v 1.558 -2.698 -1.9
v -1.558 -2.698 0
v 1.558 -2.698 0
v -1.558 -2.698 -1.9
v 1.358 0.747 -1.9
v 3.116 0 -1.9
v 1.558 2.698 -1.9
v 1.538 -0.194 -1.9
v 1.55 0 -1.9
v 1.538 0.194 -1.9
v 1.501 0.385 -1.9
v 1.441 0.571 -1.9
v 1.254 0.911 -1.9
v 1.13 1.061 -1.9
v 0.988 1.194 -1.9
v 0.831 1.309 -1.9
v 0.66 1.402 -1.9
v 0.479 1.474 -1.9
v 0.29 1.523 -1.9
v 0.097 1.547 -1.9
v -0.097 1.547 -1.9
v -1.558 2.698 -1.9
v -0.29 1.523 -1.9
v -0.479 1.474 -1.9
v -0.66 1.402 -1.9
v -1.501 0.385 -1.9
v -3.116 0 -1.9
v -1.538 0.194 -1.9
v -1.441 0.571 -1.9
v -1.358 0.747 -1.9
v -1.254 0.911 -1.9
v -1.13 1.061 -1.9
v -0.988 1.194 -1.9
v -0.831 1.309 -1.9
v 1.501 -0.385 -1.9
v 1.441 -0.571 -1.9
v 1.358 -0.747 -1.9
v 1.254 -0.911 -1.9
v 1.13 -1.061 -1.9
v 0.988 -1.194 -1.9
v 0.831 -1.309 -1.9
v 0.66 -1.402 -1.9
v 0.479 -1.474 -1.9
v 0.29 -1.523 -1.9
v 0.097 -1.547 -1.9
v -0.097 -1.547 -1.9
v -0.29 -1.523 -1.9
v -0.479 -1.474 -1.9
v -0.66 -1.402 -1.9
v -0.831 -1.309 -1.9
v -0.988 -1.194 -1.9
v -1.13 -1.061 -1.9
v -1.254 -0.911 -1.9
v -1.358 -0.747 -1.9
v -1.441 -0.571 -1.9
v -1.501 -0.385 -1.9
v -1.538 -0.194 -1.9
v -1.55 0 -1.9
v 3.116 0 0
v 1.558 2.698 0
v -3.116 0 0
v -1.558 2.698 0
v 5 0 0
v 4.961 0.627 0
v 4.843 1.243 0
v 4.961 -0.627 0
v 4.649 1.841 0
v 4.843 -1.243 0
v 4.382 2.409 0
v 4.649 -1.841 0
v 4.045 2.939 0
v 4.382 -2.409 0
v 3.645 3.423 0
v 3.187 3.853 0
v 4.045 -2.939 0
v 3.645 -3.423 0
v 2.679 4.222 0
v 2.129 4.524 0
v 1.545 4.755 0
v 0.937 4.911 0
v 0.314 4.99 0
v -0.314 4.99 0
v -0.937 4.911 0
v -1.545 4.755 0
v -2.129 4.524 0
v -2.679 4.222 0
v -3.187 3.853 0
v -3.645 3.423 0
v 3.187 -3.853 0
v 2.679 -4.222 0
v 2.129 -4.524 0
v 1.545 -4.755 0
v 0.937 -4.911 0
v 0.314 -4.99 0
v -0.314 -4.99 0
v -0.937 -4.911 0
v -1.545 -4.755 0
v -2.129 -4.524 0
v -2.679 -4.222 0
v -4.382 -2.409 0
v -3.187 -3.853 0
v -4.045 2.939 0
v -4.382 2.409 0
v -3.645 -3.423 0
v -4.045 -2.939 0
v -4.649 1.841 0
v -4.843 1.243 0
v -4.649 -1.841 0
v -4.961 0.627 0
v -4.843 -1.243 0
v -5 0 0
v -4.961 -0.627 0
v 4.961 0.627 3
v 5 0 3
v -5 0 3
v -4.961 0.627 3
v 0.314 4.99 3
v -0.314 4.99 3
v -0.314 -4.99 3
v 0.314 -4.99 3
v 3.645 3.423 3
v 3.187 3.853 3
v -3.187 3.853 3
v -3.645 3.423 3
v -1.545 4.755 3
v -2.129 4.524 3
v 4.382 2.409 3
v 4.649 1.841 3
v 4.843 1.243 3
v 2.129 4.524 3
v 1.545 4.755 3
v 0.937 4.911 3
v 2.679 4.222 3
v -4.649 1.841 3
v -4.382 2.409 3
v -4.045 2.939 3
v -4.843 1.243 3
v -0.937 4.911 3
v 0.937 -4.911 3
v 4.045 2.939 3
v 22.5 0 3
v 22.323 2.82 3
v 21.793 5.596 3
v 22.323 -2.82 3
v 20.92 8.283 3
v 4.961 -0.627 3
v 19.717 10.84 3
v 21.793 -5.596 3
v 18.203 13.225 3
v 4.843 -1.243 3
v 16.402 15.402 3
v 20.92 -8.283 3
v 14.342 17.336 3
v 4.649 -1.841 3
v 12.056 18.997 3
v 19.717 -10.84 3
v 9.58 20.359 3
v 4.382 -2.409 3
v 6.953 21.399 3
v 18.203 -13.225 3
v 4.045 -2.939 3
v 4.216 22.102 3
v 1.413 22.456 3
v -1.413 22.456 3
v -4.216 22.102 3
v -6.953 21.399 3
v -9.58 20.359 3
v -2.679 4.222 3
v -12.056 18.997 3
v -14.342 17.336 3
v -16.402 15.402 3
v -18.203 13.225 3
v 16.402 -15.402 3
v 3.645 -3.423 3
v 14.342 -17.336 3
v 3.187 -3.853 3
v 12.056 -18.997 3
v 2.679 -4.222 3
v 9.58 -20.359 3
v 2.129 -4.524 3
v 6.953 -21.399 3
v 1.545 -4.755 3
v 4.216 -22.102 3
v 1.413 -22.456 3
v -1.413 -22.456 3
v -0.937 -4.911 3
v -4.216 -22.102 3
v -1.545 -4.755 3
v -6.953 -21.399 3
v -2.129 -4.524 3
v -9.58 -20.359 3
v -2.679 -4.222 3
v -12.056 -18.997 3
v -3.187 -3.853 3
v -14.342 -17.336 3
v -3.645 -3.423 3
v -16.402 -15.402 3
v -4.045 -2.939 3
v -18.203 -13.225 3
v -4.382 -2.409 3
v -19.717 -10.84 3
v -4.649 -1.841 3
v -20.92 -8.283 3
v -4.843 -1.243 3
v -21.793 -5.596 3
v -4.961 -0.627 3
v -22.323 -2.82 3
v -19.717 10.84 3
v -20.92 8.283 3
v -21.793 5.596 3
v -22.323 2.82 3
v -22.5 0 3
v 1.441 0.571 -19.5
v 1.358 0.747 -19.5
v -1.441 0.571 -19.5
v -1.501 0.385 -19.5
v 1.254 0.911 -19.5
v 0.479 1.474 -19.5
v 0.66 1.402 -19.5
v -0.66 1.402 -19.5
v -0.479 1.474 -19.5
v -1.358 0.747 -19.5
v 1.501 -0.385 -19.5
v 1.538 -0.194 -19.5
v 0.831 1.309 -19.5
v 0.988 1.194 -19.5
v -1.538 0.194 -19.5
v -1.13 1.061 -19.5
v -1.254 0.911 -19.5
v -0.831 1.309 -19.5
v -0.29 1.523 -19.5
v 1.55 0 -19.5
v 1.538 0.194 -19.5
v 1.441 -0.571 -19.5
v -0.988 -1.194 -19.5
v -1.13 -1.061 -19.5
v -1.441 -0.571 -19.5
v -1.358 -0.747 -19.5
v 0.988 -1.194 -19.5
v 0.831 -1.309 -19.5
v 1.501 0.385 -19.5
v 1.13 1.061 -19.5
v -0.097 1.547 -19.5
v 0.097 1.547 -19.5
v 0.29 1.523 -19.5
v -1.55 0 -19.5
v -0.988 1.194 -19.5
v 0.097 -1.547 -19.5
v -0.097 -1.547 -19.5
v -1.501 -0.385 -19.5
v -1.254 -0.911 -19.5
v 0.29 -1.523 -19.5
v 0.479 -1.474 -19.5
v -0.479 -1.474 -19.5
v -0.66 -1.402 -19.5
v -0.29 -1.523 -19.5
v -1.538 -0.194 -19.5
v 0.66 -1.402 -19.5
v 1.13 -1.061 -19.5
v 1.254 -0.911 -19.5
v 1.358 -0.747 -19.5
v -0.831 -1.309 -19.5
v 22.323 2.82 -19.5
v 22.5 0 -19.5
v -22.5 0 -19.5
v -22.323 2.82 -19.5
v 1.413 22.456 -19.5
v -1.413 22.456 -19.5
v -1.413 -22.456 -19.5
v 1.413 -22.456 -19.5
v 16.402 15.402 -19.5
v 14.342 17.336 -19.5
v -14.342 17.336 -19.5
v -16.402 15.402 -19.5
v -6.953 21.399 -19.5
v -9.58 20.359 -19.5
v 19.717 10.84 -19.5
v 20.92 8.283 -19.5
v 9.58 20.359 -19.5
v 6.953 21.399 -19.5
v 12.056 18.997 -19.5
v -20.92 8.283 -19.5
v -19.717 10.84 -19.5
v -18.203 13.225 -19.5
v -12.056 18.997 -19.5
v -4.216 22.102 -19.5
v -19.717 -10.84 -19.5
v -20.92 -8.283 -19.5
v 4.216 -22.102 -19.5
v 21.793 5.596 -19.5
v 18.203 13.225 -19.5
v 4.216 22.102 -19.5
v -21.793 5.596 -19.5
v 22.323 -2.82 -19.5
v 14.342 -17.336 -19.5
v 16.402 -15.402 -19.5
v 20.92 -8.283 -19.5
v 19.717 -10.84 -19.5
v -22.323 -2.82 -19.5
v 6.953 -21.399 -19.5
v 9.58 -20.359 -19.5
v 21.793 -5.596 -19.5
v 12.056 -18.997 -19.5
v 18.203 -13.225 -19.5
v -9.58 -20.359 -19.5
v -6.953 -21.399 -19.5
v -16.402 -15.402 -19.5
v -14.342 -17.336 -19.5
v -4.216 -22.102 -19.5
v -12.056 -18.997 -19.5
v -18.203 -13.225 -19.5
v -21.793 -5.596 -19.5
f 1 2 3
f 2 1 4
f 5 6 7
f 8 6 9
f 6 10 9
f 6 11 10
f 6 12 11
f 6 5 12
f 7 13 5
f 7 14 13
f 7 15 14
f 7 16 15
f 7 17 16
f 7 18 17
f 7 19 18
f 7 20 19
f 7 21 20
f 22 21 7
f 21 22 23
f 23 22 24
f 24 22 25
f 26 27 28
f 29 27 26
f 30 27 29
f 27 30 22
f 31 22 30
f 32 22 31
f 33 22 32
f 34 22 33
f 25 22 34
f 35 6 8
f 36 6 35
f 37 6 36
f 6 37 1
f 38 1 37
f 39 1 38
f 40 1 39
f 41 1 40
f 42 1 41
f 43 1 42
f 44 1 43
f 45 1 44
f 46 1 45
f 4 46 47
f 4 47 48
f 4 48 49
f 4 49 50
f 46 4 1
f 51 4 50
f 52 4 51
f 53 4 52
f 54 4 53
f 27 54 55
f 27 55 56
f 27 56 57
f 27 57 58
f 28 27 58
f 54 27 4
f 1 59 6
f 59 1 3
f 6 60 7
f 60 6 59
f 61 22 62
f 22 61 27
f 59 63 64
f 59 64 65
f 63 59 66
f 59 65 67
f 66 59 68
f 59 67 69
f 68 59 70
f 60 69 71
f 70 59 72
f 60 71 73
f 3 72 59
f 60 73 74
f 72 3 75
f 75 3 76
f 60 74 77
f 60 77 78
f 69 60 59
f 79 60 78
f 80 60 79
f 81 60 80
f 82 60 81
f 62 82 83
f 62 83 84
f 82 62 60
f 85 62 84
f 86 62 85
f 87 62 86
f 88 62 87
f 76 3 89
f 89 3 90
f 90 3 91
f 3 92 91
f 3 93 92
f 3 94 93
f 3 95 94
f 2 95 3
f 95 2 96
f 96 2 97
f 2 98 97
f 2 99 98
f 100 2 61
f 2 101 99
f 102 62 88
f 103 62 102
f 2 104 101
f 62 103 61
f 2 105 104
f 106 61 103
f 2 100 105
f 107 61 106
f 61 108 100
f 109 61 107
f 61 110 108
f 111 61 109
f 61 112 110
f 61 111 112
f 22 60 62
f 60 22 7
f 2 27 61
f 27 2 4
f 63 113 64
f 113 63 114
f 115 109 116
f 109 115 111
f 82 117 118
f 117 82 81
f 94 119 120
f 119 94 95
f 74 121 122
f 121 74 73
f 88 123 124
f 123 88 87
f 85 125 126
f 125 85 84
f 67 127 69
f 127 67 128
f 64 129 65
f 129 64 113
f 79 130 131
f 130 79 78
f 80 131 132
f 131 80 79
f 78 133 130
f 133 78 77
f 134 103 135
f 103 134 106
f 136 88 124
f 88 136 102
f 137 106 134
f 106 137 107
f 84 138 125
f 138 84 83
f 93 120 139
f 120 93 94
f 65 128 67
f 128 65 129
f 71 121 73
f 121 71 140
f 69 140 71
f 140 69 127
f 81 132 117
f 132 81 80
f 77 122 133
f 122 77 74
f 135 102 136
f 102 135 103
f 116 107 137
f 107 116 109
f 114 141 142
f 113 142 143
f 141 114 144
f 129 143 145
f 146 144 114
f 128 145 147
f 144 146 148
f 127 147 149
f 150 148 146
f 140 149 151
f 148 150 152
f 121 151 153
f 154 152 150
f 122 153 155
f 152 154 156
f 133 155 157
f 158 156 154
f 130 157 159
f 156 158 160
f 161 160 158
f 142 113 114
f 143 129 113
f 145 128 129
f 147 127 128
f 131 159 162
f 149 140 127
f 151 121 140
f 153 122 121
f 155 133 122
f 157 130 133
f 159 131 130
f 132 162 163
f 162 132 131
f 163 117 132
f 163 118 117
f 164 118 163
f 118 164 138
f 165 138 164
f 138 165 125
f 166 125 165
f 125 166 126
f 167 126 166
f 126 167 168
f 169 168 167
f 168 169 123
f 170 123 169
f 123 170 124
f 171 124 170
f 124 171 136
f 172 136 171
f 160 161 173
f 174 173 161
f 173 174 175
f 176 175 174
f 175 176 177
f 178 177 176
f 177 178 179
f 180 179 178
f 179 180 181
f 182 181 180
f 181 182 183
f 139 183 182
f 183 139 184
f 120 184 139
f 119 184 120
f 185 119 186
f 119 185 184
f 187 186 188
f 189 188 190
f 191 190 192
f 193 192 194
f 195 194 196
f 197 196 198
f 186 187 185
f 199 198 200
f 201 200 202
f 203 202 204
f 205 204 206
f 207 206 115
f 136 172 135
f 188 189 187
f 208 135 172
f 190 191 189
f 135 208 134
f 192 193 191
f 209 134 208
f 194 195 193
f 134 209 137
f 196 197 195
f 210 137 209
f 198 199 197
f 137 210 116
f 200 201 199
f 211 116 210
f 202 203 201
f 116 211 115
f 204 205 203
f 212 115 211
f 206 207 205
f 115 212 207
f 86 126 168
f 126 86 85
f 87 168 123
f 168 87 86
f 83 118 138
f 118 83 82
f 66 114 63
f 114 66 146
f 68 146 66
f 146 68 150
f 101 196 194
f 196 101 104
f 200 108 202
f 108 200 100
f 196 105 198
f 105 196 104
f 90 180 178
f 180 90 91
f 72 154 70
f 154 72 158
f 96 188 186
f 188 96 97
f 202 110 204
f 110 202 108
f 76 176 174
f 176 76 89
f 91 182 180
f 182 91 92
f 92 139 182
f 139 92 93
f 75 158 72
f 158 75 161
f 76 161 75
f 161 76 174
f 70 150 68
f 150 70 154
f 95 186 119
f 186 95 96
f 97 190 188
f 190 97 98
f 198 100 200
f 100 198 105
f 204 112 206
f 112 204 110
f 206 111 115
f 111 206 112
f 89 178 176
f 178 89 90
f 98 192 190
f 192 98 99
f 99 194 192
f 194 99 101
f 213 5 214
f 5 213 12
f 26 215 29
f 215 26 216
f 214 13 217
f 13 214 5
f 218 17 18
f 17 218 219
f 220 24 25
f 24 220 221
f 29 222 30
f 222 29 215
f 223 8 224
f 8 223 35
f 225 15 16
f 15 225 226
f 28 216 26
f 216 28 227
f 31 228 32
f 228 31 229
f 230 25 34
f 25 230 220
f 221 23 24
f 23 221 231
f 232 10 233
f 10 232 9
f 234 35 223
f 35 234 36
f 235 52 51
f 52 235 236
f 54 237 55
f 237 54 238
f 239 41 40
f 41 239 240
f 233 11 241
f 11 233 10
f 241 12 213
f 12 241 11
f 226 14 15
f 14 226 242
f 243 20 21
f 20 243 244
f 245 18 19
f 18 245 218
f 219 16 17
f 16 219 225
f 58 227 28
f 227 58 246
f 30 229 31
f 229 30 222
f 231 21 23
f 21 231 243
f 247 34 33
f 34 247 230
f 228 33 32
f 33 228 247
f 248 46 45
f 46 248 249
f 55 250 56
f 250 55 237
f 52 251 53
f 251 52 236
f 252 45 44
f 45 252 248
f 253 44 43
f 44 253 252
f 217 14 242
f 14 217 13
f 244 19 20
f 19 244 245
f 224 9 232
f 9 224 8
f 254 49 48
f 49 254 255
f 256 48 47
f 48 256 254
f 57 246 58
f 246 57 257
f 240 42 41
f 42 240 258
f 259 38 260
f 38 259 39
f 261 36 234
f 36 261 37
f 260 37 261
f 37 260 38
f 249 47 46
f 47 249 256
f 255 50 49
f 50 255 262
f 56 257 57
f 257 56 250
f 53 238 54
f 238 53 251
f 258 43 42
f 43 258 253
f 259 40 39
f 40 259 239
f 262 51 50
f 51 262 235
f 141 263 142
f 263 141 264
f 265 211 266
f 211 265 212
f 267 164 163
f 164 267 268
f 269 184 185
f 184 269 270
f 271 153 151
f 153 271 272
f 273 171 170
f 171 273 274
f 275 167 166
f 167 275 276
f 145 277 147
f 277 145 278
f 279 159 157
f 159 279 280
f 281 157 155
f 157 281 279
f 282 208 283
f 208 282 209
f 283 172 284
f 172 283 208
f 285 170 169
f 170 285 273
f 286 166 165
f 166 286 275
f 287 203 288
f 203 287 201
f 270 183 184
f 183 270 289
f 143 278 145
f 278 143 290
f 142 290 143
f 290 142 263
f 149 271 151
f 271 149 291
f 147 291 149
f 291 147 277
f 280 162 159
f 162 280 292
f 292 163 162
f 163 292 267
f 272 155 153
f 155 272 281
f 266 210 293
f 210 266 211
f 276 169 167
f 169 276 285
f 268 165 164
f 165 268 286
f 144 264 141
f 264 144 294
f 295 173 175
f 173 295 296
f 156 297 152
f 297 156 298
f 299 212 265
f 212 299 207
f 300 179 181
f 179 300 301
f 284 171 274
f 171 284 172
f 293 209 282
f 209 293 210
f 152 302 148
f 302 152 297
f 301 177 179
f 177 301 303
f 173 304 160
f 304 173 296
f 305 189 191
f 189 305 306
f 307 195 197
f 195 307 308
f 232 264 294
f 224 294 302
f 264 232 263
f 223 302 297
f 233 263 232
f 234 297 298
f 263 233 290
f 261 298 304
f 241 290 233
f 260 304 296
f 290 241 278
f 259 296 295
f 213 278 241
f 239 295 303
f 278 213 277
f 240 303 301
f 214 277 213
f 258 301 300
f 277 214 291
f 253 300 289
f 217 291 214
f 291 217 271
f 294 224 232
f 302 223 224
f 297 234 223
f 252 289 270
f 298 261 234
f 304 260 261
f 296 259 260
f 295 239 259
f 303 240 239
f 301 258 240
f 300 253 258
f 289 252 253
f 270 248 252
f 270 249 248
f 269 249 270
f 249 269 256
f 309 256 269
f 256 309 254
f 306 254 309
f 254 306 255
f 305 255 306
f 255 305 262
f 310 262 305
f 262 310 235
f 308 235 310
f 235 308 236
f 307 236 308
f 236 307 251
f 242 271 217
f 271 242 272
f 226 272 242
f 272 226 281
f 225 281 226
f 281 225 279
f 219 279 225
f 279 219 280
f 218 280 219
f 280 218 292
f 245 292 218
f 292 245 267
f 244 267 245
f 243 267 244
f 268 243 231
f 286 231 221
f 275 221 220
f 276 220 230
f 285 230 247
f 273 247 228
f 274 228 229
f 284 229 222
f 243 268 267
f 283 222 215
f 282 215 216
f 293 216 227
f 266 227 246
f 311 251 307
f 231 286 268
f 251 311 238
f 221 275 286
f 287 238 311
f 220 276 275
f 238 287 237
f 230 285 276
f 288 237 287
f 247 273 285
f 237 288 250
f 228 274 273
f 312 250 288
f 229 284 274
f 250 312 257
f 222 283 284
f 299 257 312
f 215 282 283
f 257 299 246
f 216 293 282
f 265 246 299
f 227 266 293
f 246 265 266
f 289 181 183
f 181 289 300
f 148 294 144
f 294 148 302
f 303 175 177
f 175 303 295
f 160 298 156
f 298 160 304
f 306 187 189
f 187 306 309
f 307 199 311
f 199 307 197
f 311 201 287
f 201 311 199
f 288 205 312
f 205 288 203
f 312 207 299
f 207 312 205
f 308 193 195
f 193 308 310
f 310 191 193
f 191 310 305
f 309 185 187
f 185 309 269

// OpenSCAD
$fn = 50;

difference() {
	union() {
		translate(v = [0, 0, -19.5]) {
			cylinder(h = 22.5, r = 22.5);
		}
	}
	union() {
		translate(v = [0, 0, 0]) {
			rotate(a = [0, 0, 0]) {
				difference() {
					union() {
						translate(v = [0, 0, -1.9]) {
							linear_extrude(height = 1.9) {
								polygon(points = [[3.1158, 0.0], [1.5579000000000005, 2.698361953111554], [-1.5578999999999994, 2.6983619531115544], [-3.1158, 3.815754496783323e-16], [-1.5579000000000014, -2.6983619531115535], [1.557899999999998, -2.6983619531115552]]);
							}
						}
					}
					union();
				}
			}
		}
		#cylinder(h = 3, r = 5.0);
		#translate(v = [0, 0, -100.0]) {
			cylinder(h = 200, r = 1.55);
		}
	}
}
